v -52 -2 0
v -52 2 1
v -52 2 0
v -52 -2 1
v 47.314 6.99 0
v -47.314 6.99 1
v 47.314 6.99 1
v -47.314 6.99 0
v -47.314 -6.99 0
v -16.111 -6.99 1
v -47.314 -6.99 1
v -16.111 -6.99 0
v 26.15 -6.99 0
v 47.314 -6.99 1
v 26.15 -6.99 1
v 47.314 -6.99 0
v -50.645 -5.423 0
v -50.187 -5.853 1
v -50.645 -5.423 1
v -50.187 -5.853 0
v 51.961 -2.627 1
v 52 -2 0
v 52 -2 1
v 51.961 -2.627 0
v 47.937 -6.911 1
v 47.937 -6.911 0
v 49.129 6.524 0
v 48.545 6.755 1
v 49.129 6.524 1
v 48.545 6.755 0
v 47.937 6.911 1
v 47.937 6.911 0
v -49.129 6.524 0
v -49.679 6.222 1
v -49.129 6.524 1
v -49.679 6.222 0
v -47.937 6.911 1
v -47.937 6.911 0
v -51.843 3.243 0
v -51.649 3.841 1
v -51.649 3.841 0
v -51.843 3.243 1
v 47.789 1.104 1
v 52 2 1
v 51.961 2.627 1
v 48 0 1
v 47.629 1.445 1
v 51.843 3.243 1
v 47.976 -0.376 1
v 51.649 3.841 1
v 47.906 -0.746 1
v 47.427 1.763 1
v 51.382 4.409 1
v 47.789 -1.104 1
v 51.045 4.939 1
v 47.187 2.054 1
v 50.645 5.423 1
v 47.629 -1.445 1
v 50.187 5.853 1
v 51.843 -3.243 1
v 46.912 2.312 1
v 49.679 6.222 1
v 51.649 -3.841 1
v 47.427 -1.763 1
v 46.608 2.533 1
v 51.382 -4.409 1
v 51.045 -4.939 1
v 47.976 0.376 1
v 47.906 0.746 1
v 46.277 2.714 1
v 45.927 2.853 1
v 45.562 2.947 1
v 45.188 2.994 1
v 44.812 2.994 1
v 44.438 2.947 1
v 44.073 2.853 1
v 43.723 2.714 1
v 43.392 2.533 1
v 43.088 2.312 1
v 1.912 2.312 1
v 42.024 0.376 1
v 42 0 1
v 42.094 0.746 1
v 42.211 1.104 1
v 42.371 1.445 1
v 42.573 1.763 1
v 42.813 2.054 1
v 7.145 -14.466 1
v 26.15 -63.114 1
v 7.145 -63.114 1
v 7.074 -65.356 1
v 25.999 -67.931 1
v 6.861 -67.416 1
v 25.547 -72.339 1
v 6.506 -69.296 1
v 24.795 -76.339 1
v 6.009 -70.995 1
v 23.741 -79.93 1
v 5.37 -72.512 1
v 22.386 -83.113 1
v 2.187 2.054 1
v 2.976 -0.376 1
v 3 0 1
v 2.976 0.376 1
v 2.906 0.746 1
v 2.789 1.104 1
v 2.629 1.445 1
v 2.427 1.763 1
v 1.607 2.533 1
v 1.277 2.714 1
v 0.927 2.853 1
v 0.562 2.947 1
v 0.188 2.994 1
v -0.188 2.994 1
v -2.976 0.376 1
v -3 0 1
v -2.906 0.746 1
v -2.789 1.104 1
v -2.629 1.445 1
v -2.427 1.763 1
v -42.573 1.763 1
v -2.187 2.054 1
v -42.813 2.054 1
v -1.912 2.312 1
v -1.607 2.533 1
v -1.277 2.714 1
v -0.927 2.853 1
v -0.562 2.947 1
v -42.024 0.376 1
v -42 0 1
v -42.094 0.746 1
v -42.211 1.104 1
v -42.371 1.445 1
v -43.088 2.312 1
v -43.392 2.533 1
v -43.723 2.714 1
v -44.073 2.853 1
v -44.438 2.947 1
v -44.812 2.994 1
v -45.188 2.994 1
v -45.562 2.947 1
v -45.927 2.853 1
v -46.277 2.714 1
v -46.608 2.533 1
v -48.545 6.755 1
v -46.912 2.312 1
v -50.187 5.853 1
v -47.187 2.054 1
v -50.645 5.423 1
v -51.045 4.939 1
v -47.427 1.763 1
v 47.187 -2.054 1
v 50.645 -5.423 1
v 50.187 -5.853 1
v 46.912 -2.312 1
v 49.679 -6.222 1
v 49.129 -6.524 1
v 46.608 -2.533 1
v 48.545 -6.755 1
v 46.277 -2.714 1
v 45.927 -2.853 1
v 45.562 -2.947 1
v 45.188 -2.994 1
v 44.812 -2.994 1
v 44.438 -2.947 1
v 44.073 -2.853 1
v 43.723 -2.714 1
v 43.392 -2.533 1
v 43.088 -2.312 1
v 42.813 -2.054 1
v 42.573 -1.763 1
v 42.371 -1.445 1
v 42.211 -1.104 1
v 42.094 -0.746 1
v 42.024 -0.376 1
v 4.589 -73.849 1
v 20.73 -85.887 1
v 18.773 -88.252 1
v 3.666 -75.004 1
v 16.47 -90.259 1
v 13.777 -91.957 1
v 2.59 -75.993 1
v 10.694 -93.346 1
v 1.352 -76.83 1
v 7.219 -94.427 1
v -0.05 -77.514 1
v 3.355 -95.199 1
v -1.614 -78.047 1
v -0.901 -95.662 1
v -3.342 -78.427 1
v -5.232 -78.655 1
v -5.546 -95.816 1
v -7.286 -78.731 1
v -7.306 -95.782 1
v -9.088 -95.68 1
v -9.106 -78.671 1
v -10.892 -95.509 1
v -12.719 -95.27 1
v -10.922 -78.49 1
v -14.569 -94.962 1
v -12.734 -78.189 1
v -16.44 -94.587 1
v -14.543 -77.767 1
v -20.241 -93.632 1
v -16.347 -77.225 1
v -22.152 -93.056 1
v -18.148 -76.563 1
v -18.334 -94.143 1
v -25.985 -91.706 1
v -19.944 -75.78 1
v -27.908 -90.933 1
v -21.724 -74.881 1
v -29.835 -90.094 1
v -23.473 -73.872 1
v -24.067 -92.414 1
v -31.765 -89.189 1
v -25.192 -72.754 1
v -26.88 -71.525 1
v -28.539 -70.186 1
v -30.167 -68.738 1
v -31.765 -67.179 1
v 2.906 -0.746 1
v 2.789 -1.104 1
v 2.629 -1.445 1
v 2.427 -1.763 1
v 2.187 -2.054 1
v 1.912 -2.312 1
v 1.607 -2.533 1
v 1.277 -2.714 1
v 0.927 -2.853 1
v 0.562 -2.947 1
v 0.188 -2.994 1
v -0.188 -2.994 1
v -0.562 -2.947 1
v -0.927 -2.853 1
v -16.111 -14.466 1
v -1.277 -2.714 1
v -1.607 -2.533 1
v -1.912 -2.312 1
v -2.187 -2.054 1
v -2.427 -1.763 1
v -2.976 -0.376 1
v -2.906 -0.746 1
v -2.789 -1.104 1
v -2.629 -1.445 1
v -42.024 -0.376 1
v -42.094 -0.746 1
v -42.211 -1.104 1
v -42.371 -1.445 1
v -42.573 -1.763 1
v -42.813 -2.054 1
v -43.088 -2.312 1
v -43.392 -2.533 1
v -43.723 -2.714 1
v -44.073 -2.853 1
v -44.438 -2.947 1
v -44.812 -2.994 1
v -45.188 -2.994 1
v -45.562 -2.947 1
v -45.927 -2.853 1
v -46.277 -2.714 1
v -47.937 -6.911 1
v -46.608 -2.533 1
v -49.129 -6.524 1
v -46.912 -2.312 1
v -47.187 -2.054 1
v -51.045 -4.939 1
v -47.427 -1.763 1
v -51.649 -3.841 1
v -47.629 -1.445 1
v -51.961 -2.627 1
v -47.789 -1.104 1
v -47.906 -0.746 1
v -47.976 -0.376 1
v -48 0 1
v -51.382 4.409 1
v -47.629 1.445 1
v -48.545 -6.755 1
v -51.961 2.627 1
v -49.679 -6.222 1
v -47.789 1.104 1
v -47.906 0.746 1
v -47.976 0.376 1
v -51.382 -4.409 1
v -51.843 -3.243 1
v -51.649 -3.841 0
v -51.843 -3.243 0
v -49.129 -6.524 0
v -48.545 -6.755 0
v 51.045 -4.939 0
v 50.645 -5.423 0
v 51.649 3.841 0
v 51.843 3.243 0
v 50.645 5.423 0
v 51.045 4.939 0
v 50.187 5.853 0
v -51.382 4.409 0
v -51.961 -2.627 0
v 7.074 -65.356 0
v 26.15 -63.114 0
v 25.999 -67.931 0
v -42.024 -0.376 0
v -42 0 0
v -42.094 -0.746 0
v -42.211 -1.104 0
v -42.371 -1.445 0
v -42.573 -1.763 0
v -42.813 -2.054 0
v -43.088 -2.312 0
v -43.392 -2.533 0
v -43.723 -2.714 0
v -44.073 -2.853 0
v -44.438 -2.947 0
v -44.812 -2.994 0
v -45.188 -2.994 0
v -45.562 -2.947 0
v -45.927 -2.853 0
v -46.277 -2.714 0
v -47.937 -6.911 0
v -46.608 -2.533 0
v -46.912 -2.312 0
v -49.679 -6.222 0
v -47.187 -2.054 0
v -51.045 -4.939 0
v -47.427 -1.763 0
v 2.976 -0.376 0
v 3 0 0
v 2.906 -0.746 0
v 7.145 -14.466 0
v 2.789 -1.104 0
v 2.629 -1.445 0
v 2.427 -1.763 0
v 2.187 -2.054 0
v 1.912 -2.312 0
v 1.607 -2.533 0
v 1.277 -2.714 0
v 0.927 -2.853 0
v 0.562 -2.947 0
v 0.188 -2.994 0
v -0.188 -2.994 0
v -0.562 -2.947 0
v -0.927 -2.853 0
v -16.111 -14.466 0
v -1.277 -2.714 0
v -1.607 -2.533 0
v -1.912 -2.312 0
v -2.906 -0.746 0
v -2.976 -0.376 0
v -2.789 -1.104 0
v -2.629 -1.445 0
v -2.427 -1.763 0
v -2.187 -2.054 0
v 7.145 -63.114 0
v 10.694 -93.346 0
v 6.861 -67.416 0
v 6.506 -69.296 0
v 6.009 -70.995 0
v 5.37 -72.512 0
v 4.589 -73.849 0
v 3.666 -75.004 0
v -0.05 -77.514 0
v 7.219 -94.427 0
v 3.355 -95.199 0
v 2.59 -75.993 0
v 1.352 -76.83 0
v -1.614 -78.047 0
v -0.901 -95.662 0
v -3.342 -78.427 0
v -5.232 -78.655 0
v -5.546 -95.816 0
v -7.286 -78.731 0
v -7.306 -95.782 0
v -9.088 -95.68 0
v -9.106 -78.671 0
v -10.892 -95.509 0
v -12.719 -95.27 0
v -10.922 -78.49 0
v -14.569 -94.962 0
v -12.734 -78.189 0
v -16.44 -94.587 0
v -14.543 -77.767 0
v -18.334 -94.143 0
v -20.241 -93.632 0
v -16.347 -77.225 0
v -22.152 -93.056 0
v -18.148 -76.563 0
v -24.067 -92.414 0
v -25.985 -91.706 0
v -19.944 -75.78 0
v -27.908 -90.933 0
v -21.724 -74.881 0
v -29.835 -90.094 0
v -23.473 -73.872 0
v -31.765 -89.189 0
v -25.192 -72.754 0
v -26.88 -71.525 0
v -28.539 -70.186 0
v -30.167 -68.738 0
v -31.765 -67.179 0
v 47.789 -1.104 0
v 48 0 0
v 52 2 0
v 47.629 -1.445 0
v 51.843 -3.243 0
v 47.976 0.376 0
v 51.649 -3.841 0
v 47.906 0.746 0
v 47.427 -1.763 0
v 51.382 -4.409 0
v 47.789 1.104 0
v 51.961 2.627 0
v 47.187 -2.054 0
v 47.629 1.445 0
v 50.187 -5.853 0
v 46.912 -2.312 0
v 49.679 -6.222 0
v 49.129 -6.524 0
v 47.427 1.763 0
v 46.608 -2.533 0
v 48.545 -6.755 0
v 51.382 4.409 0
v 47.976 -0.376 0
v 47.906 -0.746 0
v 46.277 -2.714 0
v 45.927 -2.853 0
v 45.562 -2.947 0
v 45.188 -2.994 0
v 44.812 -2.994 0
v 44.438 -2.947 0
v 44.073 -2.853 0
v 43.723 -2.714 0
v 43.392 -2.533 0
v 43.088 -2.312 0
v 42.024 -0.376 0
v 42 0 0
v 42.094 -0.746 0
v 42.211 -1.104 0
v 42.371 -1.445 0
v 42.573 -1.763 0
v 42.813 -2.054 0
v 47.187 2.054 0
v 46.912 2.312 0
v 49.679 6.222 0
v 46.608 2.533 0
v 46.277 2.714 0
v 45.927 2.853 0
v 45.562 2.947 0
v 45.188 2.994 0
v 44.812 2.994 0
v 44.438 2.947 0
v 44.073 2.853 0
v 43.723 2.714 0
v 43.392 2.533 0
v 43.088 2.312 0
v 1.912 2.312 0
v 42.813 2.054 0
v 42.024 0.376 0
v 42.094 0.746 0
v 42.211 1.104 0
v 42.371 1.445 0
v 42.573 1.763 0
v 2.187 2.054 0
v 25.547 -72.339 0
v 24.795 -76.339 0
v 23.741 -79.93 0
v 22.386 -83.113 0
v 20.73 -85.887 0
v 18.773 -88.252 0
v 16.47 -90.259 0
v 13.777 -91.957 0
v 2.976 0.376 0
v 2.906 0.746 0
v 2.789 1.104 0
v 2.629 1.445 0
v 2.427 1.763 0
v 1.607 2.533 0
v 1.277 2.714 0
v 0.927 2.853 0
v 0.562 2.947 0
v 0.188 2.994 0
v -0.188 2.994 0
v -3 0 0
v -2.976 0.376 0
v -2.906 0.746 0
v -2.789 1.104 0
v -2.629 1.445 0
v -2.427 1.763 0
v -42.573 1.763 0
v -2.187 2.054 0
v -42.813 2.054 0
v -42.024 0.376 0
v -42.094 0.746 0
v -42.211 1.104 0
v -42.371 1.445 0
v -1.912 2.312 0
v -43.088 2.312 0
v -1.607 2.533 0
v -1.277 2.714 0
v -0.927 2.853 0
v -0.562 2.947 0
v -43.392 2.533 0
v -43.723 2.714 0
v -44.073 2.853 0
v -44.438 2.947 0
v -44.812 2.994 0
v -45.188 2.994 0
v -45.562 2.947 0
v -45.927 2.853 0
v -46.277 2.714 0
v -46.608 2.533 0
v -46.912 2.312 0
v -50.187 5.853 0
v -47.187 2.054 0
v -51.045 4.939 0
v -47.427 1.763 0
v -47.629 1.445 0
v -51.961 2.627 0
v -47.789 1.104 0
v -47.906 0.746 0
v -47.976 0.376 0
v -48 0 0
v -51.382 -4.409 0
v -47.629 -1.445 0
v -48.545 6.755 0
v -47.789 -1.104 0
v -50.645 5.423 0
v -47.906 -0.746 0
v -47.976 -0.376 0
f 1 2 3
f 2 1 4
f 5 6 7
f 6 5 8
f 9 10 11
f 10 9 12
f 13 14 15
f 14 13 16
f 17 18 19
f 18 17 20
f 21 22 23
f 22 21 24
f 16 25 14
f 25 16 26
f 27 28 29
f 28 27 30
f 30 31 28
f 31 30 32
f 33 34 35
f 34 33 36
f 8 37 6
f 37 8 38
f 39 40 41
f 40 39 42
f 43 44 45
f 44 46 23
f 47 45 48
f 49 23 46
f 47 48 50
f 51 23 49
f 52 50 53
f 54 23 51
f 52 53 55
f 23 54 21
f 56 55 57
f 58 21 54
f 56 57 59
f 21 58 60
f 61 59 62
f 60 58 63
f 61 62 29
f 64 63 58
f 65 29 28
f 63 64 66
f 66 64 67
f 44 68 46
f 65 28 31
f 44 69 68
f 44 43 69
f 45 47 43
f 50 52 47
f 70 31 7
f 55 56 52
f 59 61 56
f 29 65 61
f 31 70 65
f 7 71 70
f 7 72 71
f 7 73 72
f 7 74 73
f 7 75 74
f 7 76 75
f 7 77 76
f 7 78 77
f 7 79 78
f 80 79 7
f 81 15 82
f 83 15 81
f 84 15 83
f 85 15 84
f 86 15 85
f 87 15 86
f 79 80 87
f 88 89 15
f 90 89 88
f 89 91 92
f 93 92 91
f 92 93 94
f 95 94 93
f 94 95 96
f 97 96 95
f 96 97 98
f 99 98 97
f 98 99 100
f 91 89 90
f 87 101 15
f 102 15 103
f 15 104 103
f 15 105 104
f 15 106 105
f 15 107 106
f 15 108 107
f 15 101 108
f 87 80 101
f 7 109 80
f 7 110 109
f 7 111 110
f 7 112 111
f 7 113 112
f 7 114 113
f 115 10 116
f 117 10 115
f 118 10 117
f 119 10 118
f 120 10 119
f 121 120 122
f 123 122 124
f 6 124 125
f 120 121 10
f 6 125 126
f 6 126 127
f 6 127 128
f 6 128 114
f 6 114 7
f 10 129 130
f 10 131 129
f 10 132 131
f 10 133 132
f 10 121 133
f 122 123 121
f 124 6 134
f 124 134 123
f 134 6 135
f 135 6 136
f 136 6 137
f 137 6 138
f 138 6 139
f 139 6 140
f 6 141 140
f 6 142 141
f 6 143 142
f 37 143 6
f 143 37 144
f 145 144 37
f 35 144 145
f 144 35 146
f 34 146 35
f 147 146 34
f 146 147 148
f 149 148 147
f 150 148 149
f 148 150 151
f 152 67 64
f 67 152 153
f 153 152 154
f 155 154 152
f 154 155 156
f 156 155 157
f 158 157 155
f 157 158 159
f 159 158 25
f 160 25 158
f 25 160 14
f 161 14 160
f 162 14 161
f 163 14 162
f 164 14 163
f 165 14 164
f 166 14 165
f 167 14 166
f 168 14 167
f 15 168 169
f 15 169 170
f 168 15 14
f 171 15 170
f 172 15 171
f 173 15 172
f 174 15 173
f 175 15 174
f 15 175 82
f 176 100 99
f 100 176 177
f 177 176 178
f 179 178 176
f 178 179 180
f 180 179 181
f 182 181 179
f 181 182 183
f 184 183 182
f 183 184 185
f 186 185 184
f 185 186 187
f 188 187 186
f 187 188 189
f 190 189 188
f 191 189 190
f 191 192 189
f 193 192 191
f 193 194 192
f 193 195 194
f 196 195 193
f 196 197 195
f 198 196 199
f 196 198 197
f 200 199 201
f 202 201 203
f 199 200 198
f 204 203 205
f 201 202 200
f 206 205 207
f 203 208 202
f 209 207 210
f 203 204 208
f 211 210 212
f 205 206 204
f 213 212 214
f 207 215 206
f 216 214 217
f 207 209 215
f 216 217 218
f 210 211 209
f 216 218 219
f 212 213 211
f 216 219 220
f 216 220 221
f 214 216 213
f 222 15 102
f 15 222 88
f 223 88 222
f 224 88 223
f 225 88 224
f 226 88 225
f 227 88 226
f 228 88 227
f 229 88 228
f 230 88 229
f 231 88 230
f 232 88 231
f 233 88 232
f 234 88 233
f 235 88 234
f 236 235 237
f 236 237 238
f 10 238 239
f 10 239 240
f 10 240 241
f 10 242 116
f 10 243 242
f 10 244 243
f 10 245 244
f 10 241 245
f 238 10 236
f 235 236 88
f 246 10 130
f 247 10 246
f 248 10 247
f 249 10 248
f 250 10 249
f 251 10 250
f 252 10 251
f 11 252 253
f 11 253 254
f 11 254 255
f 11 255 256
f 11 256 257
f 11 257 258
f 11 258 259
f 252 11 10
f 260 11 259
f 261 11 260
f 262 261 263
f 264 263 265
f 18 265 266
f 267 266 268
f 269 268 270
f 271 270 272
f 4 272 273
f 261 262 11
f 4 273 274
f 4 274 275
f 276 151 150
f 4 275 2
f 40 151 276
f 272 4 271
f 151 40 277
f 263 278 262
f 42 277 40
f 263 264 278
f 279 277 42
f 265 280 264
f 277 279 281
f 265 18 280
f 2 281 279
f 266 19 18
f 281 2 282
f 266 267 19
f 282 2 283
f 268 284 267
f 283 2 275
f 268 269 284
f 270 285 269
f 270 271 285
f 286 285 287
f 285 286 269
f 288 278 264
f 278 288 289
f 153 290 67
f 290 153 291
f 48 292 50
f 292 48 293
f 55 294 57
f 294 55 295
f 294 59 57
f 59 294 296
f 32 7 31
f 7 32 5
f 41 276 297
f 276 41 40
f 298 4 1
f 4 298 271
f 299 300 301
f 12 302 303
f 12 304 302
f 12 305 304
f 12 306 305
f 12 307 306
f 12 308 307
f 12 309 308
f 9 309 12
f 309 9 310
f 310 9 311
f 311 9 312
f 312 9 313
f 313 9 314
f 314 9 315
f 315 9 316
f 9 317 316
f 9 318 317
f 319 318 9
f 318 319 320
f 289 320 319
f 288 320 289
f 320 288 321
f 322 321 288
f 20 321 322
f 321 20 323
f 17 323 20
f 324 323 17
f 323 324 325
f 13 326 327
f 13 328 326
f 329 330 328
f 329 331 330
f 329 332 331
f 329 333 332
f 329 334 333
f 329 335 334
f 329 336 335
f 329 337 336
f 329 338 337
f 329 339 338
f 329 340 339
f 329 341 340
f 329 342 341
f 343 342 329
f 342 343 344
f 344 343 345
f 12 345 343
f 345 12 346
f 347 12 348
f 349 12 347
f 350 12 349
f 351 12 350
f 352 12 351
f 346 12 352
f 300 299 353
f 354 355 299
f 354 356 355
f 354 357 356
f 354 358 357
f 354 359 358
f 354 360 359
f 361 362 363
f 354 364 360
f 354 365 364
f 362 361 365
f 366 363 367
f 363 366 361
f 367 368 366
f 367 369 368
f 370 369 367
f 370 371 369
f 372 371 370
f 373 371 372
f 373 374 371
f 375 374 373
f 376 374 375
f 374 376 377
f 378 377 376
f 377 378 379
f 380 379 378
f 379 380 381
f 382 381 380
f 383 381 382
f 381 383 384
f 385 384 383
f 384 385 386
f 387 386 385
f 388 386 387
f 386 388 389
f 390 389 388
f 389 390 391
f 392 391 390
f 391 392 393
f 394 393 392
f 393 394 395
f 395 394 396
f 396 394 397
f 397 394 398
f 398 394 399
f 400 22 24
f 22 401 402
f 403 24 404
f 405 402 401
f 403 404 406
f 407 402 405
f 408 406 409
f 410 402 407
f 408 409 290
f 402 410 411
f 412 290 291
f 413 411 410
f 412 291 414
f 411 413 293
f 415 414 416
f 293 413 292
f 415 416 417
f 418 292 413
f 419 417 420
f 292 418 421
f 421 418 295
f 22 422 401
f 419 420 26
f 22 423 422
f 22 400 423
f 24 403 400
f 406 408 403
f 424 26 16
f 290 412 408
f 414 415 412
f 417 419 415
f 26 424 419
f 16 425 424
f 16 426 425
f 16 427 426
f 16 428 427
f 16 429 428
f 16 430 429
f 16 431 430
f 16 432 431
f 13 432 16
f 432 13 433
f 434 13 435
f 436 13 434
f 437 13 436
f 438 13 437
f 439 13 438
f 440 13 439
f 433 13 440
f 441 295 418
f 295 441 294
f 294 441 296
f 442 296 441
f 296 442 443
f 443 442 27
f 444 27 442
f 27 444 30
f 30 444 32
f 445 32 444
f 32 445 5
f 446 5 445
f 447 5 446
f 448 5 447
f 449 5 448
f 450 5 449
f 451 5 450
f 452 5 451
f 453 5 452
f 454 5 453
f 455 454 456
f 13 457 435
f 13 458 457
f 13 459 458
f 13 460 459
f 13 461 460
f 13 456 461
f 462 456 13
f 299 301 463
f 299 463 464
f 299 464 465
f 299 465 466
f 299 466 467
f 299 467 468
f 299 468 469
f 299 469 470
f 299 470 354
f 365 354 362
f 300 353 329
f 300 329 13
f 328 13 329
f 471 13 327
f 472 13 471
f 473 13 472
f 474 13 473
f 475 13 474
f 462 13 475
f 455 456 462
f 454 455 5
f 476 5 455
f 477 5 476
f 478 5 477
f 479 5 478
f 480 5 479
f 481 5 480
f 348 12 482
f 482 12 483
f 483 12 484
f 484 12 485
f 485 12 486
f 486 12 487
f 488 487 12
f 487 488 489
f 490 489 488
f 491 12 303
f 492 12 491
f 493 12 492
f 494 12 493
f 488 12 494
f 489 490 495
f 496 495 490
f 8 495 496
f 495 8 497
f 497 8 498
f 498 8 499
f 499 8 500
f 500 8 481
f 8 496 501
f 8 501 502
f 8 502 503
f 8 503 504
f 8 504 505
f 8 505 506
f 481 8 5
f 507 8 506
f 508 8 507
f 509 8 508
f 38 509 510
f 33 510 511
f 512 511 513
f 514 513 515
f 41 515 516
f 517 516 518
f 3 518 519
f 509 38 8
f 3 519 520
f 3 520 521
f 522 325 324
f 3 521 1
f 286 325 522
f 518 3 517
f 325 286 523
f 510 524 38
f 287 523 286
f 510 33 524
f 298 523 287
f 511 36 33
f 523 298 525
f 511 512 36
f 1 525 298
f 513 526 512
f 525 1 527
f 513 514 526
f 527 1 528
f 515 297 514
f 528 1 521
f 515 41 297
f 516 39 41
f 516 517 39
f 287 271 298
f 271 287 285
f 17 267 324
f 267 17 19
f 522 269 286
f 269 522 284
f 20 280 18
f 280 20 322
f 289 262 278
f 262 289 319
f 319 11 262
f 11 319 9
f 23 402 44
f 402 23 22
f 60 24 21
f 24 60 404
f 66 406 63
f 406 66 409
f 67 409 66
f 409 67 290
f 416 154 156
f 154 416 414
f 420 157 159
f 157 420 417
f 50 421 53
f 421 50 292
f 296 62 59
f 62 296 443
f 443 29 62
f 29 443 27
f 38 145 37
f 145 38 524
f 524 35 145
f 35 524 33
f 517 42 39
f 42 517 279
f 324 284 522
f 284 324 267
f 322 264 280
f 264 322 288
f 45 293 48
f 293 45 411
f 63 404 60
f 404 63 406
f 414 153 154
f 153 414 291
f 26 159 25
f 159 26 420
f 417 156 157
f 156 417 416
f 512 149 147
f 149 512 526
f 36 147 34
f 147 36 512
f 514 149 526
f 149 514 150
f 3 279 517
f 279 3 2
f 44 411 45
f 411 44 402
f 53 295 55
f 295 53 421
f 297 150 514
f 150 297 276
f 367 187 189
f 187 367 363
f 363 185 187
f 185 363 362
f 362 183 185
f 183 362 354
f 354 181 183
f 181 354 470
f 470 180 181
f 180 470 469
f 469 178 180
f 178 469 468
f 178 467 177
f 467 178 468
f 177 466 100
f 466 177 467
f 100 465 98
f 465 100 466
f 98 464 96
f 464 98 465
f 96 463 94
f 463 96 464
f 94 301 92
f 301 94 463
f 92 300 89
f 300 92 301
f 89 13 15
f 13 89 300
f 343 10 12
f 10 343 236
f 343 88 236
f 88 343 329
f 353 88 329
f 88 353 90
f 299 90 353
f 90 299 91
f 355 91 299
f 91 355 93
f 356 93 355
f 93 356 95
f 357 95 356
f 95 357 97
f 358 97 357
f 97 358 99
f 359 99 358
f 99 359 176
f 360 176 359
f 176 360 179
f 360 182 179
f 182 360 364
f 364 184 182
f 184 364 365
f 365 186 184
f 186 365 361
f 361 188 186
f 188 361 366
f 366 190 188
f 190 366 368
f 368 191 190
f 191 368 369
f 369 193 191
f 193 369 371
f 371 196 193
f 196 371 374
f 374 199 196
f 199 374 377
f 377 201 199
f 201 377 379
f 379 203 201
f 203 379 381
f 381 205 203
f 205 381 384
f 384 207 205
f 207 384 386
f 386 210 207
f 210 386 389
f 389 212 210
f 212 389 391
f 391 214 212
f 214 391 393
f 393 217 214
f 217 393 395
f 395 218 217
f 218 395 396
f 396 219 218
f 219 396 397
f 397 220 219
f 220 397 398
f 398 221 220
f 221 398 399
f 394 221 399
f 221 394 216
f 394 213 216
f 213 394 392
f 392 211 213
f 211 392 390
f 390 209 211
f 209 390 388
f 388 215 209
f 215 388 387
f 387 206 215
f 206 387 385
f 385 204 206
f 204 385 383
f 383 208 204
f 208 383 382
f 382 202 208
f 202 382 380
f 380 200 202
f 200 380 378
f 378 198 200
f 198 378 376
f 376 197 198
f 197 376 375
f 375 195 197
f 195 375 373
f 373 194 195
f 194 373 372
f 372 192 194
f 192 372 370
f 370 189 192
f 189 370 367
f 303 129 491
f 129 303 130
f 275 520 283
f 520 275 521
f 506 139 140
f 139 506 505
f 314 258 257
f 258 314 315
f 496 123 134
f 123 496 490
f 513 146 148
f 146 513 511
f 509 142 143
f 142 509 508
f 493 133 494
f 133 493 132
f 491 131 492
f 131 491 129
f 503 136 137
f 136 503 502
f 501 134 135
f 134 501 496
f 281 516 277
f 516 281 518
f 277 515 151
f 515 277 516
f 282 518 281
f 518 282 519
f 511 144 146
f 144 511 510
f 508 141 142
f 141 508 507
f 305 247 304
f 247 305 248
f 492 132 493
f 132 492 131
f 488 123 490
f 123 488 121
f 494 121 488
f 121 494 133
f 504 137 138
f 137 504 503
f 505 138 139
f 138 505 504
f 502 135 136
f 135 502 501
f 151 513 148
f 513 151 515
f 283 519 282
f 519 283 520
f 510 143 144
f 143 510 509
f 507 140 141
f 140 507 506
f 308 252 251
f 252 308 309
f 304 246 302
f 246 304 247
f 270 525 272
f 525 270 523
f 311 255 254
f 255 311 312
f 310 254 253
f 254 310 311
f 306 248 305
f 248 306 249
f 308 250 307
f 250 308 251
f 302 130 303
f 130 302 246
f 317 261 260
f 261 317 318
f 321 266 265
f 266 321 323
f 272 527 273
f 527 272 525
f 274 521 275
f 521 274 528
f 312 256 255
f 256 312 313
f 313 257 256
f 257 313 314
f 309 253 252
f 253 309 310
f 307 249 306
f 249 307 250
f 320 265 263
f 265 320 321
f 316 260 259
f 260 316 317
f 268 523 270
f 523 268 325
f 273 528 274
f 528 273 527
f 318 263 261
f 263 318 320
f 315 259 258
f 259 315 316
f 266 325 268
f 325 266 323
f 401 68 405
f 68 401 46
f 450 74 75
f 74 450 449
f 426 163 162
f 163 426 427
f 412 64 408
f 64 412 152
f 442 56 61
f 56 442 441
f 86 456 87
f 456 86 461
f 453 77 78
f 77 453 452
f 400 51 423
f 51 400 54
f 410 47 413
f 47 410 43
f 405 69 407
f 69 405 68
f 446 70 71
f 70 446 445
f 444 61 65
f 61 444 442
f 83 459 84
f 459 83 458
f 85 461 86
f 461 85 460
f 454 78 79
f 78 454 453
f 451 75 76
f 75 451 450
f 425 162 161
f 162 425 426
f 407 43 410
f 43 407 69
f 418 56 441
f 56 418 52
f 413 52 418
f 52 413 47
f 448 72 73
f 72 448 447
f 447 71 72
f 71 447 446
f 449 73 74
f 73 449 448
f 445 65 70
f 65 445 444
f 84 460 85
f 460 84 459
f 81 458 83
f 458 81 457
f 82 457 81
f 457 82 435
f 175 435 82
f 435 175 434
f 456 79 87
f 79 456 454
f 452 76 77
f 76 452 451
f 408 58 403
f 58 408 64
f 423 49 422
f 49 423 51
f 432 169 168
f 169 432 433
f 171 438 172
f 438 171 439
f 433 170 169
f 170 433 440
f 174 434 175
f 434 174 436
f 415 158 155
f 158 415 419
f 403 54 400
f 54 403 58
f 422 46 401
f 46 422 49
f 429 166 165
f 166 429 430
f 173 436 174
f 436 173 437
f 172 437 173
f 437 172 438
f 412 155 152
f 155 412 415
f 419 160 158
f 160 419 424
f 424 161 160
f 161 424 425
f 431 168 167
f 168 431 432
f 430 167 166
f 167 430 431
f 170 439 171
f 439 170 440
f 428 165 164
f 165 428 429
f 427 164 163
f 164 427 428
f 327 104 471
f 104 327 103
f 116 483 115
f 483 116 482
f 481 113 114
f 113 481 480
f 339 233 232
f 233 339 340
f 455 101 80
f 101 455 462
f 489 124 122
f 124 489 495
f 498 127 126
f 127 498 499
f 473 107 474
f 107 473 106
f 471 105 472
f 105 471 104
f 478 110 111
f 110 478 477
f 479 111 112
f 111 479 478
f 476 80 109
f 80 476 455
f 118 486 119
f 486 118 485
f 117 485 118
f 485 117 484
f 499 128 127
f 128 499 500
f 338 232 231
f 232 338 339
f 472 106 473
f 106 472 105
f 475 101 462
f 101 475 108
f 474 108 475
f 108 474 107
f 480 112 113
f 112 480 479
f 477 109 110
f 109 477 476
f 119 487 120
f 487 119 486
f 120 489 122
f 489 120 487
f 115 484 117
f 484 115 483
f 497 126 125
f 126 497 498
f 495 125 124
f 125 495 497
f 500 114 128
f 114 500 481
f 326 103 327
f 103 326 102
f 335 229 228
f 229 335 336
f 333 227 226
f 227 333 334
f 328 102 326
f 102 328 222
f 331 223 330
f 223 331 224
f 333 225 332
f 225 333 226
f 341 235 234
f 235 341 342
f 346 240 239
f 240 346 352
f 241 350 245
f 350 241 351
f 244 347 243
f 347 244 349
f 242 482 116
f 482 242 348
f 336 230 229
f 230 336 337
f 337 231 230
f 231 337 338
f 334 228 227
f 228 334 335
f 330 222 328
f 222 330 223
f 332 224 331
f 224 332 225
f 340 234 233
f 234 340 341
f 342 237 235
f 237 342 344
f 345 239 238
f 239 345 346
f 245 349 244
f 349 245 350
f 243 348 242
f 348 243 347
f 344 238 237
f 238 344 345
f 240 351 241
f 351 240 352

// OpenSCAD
$fn = 50;


difference() {
	union() {
		translate(v = [0, 0, 0]) {
			rotate(a = [0, 0, 0]) {
				hull() {
					translate(v = [-47.0000000000, 2.0000000000, 0]) {
						rotate(a = [0, 0, 0]) {
							translate(v = [0, 0, 0]) {
								rotate(a = [0, 0, 0]) {
									cylinder(h = 1, r = 5);
								}
							}
						}
					}
					translate(v = [47.0000000000, 2.0000000000, 0]) {
						rotate(a = [0, 0, 0]) {
							translate(v = [0, 0, 0]) {
								rotate(a = [0, 0, 0]) {
									cylinder(h = 1, r = 5);
								}
							}
						}
					}
					translate(v = [-47.0000000000, -2.0000000000, 0]) {
						rotate(a = [0, 0, 0]) {
							translate(v = [0, 0, 0]) {
								rotate(a = [0, 0, 0]) {
									cylinder(h = 1, r = 5);
								}
							}
						}
					}
					translate(v = [47.0000000000, -2.0000000000, 0]) {
						rotate(a = [0, 0, 0]) {
							translate(v = [0, 0, 0]) {
								rotate(a = [0, 0, 0]) {
									cylinder(h = 1, r = 5);
								}
							}
						}
					}
				}
			}
		}
		translate(v = [0, 0, 0]) {
			rotate(a = [0, 0, 0]) {
				linear_extrude(height = 1) {
					text(font = "DejaVu Sans Mono:style=Bold", halign = "center", size = 95.0000000000, text = "J", valign = "top");
				}
			}
		}
	}
	union() {
		translate(v = [-45.0000000000, 0.0000000000, -125.0000000000]) {
			rotate(a = [0, 0, 0]) {
				cylinder(h = 250, r = 3.0000000000);
			}
		}
		translate(v = [45.0000000000, 0.0000000000, -125.0000000000]) {
			rotate(a = [0, 0, 0]) {
				cylinder(h = 250, r = 3.0000000000);
			}
		}
		translate(v = [45.0000000000, 0.0000000000, -125.0000000000]) {
			rotate(a = [0, 0, 0]) {
				cylinder(h = 250, r = 3.0000000000);
			}
		}
		translate(v = [0, 0, -125.0000000000]) {
			rotate(a = [0, 0, 0]) {
				cylinder(h = 250, r = 3.0000000000);
			}
		}
	}
}
